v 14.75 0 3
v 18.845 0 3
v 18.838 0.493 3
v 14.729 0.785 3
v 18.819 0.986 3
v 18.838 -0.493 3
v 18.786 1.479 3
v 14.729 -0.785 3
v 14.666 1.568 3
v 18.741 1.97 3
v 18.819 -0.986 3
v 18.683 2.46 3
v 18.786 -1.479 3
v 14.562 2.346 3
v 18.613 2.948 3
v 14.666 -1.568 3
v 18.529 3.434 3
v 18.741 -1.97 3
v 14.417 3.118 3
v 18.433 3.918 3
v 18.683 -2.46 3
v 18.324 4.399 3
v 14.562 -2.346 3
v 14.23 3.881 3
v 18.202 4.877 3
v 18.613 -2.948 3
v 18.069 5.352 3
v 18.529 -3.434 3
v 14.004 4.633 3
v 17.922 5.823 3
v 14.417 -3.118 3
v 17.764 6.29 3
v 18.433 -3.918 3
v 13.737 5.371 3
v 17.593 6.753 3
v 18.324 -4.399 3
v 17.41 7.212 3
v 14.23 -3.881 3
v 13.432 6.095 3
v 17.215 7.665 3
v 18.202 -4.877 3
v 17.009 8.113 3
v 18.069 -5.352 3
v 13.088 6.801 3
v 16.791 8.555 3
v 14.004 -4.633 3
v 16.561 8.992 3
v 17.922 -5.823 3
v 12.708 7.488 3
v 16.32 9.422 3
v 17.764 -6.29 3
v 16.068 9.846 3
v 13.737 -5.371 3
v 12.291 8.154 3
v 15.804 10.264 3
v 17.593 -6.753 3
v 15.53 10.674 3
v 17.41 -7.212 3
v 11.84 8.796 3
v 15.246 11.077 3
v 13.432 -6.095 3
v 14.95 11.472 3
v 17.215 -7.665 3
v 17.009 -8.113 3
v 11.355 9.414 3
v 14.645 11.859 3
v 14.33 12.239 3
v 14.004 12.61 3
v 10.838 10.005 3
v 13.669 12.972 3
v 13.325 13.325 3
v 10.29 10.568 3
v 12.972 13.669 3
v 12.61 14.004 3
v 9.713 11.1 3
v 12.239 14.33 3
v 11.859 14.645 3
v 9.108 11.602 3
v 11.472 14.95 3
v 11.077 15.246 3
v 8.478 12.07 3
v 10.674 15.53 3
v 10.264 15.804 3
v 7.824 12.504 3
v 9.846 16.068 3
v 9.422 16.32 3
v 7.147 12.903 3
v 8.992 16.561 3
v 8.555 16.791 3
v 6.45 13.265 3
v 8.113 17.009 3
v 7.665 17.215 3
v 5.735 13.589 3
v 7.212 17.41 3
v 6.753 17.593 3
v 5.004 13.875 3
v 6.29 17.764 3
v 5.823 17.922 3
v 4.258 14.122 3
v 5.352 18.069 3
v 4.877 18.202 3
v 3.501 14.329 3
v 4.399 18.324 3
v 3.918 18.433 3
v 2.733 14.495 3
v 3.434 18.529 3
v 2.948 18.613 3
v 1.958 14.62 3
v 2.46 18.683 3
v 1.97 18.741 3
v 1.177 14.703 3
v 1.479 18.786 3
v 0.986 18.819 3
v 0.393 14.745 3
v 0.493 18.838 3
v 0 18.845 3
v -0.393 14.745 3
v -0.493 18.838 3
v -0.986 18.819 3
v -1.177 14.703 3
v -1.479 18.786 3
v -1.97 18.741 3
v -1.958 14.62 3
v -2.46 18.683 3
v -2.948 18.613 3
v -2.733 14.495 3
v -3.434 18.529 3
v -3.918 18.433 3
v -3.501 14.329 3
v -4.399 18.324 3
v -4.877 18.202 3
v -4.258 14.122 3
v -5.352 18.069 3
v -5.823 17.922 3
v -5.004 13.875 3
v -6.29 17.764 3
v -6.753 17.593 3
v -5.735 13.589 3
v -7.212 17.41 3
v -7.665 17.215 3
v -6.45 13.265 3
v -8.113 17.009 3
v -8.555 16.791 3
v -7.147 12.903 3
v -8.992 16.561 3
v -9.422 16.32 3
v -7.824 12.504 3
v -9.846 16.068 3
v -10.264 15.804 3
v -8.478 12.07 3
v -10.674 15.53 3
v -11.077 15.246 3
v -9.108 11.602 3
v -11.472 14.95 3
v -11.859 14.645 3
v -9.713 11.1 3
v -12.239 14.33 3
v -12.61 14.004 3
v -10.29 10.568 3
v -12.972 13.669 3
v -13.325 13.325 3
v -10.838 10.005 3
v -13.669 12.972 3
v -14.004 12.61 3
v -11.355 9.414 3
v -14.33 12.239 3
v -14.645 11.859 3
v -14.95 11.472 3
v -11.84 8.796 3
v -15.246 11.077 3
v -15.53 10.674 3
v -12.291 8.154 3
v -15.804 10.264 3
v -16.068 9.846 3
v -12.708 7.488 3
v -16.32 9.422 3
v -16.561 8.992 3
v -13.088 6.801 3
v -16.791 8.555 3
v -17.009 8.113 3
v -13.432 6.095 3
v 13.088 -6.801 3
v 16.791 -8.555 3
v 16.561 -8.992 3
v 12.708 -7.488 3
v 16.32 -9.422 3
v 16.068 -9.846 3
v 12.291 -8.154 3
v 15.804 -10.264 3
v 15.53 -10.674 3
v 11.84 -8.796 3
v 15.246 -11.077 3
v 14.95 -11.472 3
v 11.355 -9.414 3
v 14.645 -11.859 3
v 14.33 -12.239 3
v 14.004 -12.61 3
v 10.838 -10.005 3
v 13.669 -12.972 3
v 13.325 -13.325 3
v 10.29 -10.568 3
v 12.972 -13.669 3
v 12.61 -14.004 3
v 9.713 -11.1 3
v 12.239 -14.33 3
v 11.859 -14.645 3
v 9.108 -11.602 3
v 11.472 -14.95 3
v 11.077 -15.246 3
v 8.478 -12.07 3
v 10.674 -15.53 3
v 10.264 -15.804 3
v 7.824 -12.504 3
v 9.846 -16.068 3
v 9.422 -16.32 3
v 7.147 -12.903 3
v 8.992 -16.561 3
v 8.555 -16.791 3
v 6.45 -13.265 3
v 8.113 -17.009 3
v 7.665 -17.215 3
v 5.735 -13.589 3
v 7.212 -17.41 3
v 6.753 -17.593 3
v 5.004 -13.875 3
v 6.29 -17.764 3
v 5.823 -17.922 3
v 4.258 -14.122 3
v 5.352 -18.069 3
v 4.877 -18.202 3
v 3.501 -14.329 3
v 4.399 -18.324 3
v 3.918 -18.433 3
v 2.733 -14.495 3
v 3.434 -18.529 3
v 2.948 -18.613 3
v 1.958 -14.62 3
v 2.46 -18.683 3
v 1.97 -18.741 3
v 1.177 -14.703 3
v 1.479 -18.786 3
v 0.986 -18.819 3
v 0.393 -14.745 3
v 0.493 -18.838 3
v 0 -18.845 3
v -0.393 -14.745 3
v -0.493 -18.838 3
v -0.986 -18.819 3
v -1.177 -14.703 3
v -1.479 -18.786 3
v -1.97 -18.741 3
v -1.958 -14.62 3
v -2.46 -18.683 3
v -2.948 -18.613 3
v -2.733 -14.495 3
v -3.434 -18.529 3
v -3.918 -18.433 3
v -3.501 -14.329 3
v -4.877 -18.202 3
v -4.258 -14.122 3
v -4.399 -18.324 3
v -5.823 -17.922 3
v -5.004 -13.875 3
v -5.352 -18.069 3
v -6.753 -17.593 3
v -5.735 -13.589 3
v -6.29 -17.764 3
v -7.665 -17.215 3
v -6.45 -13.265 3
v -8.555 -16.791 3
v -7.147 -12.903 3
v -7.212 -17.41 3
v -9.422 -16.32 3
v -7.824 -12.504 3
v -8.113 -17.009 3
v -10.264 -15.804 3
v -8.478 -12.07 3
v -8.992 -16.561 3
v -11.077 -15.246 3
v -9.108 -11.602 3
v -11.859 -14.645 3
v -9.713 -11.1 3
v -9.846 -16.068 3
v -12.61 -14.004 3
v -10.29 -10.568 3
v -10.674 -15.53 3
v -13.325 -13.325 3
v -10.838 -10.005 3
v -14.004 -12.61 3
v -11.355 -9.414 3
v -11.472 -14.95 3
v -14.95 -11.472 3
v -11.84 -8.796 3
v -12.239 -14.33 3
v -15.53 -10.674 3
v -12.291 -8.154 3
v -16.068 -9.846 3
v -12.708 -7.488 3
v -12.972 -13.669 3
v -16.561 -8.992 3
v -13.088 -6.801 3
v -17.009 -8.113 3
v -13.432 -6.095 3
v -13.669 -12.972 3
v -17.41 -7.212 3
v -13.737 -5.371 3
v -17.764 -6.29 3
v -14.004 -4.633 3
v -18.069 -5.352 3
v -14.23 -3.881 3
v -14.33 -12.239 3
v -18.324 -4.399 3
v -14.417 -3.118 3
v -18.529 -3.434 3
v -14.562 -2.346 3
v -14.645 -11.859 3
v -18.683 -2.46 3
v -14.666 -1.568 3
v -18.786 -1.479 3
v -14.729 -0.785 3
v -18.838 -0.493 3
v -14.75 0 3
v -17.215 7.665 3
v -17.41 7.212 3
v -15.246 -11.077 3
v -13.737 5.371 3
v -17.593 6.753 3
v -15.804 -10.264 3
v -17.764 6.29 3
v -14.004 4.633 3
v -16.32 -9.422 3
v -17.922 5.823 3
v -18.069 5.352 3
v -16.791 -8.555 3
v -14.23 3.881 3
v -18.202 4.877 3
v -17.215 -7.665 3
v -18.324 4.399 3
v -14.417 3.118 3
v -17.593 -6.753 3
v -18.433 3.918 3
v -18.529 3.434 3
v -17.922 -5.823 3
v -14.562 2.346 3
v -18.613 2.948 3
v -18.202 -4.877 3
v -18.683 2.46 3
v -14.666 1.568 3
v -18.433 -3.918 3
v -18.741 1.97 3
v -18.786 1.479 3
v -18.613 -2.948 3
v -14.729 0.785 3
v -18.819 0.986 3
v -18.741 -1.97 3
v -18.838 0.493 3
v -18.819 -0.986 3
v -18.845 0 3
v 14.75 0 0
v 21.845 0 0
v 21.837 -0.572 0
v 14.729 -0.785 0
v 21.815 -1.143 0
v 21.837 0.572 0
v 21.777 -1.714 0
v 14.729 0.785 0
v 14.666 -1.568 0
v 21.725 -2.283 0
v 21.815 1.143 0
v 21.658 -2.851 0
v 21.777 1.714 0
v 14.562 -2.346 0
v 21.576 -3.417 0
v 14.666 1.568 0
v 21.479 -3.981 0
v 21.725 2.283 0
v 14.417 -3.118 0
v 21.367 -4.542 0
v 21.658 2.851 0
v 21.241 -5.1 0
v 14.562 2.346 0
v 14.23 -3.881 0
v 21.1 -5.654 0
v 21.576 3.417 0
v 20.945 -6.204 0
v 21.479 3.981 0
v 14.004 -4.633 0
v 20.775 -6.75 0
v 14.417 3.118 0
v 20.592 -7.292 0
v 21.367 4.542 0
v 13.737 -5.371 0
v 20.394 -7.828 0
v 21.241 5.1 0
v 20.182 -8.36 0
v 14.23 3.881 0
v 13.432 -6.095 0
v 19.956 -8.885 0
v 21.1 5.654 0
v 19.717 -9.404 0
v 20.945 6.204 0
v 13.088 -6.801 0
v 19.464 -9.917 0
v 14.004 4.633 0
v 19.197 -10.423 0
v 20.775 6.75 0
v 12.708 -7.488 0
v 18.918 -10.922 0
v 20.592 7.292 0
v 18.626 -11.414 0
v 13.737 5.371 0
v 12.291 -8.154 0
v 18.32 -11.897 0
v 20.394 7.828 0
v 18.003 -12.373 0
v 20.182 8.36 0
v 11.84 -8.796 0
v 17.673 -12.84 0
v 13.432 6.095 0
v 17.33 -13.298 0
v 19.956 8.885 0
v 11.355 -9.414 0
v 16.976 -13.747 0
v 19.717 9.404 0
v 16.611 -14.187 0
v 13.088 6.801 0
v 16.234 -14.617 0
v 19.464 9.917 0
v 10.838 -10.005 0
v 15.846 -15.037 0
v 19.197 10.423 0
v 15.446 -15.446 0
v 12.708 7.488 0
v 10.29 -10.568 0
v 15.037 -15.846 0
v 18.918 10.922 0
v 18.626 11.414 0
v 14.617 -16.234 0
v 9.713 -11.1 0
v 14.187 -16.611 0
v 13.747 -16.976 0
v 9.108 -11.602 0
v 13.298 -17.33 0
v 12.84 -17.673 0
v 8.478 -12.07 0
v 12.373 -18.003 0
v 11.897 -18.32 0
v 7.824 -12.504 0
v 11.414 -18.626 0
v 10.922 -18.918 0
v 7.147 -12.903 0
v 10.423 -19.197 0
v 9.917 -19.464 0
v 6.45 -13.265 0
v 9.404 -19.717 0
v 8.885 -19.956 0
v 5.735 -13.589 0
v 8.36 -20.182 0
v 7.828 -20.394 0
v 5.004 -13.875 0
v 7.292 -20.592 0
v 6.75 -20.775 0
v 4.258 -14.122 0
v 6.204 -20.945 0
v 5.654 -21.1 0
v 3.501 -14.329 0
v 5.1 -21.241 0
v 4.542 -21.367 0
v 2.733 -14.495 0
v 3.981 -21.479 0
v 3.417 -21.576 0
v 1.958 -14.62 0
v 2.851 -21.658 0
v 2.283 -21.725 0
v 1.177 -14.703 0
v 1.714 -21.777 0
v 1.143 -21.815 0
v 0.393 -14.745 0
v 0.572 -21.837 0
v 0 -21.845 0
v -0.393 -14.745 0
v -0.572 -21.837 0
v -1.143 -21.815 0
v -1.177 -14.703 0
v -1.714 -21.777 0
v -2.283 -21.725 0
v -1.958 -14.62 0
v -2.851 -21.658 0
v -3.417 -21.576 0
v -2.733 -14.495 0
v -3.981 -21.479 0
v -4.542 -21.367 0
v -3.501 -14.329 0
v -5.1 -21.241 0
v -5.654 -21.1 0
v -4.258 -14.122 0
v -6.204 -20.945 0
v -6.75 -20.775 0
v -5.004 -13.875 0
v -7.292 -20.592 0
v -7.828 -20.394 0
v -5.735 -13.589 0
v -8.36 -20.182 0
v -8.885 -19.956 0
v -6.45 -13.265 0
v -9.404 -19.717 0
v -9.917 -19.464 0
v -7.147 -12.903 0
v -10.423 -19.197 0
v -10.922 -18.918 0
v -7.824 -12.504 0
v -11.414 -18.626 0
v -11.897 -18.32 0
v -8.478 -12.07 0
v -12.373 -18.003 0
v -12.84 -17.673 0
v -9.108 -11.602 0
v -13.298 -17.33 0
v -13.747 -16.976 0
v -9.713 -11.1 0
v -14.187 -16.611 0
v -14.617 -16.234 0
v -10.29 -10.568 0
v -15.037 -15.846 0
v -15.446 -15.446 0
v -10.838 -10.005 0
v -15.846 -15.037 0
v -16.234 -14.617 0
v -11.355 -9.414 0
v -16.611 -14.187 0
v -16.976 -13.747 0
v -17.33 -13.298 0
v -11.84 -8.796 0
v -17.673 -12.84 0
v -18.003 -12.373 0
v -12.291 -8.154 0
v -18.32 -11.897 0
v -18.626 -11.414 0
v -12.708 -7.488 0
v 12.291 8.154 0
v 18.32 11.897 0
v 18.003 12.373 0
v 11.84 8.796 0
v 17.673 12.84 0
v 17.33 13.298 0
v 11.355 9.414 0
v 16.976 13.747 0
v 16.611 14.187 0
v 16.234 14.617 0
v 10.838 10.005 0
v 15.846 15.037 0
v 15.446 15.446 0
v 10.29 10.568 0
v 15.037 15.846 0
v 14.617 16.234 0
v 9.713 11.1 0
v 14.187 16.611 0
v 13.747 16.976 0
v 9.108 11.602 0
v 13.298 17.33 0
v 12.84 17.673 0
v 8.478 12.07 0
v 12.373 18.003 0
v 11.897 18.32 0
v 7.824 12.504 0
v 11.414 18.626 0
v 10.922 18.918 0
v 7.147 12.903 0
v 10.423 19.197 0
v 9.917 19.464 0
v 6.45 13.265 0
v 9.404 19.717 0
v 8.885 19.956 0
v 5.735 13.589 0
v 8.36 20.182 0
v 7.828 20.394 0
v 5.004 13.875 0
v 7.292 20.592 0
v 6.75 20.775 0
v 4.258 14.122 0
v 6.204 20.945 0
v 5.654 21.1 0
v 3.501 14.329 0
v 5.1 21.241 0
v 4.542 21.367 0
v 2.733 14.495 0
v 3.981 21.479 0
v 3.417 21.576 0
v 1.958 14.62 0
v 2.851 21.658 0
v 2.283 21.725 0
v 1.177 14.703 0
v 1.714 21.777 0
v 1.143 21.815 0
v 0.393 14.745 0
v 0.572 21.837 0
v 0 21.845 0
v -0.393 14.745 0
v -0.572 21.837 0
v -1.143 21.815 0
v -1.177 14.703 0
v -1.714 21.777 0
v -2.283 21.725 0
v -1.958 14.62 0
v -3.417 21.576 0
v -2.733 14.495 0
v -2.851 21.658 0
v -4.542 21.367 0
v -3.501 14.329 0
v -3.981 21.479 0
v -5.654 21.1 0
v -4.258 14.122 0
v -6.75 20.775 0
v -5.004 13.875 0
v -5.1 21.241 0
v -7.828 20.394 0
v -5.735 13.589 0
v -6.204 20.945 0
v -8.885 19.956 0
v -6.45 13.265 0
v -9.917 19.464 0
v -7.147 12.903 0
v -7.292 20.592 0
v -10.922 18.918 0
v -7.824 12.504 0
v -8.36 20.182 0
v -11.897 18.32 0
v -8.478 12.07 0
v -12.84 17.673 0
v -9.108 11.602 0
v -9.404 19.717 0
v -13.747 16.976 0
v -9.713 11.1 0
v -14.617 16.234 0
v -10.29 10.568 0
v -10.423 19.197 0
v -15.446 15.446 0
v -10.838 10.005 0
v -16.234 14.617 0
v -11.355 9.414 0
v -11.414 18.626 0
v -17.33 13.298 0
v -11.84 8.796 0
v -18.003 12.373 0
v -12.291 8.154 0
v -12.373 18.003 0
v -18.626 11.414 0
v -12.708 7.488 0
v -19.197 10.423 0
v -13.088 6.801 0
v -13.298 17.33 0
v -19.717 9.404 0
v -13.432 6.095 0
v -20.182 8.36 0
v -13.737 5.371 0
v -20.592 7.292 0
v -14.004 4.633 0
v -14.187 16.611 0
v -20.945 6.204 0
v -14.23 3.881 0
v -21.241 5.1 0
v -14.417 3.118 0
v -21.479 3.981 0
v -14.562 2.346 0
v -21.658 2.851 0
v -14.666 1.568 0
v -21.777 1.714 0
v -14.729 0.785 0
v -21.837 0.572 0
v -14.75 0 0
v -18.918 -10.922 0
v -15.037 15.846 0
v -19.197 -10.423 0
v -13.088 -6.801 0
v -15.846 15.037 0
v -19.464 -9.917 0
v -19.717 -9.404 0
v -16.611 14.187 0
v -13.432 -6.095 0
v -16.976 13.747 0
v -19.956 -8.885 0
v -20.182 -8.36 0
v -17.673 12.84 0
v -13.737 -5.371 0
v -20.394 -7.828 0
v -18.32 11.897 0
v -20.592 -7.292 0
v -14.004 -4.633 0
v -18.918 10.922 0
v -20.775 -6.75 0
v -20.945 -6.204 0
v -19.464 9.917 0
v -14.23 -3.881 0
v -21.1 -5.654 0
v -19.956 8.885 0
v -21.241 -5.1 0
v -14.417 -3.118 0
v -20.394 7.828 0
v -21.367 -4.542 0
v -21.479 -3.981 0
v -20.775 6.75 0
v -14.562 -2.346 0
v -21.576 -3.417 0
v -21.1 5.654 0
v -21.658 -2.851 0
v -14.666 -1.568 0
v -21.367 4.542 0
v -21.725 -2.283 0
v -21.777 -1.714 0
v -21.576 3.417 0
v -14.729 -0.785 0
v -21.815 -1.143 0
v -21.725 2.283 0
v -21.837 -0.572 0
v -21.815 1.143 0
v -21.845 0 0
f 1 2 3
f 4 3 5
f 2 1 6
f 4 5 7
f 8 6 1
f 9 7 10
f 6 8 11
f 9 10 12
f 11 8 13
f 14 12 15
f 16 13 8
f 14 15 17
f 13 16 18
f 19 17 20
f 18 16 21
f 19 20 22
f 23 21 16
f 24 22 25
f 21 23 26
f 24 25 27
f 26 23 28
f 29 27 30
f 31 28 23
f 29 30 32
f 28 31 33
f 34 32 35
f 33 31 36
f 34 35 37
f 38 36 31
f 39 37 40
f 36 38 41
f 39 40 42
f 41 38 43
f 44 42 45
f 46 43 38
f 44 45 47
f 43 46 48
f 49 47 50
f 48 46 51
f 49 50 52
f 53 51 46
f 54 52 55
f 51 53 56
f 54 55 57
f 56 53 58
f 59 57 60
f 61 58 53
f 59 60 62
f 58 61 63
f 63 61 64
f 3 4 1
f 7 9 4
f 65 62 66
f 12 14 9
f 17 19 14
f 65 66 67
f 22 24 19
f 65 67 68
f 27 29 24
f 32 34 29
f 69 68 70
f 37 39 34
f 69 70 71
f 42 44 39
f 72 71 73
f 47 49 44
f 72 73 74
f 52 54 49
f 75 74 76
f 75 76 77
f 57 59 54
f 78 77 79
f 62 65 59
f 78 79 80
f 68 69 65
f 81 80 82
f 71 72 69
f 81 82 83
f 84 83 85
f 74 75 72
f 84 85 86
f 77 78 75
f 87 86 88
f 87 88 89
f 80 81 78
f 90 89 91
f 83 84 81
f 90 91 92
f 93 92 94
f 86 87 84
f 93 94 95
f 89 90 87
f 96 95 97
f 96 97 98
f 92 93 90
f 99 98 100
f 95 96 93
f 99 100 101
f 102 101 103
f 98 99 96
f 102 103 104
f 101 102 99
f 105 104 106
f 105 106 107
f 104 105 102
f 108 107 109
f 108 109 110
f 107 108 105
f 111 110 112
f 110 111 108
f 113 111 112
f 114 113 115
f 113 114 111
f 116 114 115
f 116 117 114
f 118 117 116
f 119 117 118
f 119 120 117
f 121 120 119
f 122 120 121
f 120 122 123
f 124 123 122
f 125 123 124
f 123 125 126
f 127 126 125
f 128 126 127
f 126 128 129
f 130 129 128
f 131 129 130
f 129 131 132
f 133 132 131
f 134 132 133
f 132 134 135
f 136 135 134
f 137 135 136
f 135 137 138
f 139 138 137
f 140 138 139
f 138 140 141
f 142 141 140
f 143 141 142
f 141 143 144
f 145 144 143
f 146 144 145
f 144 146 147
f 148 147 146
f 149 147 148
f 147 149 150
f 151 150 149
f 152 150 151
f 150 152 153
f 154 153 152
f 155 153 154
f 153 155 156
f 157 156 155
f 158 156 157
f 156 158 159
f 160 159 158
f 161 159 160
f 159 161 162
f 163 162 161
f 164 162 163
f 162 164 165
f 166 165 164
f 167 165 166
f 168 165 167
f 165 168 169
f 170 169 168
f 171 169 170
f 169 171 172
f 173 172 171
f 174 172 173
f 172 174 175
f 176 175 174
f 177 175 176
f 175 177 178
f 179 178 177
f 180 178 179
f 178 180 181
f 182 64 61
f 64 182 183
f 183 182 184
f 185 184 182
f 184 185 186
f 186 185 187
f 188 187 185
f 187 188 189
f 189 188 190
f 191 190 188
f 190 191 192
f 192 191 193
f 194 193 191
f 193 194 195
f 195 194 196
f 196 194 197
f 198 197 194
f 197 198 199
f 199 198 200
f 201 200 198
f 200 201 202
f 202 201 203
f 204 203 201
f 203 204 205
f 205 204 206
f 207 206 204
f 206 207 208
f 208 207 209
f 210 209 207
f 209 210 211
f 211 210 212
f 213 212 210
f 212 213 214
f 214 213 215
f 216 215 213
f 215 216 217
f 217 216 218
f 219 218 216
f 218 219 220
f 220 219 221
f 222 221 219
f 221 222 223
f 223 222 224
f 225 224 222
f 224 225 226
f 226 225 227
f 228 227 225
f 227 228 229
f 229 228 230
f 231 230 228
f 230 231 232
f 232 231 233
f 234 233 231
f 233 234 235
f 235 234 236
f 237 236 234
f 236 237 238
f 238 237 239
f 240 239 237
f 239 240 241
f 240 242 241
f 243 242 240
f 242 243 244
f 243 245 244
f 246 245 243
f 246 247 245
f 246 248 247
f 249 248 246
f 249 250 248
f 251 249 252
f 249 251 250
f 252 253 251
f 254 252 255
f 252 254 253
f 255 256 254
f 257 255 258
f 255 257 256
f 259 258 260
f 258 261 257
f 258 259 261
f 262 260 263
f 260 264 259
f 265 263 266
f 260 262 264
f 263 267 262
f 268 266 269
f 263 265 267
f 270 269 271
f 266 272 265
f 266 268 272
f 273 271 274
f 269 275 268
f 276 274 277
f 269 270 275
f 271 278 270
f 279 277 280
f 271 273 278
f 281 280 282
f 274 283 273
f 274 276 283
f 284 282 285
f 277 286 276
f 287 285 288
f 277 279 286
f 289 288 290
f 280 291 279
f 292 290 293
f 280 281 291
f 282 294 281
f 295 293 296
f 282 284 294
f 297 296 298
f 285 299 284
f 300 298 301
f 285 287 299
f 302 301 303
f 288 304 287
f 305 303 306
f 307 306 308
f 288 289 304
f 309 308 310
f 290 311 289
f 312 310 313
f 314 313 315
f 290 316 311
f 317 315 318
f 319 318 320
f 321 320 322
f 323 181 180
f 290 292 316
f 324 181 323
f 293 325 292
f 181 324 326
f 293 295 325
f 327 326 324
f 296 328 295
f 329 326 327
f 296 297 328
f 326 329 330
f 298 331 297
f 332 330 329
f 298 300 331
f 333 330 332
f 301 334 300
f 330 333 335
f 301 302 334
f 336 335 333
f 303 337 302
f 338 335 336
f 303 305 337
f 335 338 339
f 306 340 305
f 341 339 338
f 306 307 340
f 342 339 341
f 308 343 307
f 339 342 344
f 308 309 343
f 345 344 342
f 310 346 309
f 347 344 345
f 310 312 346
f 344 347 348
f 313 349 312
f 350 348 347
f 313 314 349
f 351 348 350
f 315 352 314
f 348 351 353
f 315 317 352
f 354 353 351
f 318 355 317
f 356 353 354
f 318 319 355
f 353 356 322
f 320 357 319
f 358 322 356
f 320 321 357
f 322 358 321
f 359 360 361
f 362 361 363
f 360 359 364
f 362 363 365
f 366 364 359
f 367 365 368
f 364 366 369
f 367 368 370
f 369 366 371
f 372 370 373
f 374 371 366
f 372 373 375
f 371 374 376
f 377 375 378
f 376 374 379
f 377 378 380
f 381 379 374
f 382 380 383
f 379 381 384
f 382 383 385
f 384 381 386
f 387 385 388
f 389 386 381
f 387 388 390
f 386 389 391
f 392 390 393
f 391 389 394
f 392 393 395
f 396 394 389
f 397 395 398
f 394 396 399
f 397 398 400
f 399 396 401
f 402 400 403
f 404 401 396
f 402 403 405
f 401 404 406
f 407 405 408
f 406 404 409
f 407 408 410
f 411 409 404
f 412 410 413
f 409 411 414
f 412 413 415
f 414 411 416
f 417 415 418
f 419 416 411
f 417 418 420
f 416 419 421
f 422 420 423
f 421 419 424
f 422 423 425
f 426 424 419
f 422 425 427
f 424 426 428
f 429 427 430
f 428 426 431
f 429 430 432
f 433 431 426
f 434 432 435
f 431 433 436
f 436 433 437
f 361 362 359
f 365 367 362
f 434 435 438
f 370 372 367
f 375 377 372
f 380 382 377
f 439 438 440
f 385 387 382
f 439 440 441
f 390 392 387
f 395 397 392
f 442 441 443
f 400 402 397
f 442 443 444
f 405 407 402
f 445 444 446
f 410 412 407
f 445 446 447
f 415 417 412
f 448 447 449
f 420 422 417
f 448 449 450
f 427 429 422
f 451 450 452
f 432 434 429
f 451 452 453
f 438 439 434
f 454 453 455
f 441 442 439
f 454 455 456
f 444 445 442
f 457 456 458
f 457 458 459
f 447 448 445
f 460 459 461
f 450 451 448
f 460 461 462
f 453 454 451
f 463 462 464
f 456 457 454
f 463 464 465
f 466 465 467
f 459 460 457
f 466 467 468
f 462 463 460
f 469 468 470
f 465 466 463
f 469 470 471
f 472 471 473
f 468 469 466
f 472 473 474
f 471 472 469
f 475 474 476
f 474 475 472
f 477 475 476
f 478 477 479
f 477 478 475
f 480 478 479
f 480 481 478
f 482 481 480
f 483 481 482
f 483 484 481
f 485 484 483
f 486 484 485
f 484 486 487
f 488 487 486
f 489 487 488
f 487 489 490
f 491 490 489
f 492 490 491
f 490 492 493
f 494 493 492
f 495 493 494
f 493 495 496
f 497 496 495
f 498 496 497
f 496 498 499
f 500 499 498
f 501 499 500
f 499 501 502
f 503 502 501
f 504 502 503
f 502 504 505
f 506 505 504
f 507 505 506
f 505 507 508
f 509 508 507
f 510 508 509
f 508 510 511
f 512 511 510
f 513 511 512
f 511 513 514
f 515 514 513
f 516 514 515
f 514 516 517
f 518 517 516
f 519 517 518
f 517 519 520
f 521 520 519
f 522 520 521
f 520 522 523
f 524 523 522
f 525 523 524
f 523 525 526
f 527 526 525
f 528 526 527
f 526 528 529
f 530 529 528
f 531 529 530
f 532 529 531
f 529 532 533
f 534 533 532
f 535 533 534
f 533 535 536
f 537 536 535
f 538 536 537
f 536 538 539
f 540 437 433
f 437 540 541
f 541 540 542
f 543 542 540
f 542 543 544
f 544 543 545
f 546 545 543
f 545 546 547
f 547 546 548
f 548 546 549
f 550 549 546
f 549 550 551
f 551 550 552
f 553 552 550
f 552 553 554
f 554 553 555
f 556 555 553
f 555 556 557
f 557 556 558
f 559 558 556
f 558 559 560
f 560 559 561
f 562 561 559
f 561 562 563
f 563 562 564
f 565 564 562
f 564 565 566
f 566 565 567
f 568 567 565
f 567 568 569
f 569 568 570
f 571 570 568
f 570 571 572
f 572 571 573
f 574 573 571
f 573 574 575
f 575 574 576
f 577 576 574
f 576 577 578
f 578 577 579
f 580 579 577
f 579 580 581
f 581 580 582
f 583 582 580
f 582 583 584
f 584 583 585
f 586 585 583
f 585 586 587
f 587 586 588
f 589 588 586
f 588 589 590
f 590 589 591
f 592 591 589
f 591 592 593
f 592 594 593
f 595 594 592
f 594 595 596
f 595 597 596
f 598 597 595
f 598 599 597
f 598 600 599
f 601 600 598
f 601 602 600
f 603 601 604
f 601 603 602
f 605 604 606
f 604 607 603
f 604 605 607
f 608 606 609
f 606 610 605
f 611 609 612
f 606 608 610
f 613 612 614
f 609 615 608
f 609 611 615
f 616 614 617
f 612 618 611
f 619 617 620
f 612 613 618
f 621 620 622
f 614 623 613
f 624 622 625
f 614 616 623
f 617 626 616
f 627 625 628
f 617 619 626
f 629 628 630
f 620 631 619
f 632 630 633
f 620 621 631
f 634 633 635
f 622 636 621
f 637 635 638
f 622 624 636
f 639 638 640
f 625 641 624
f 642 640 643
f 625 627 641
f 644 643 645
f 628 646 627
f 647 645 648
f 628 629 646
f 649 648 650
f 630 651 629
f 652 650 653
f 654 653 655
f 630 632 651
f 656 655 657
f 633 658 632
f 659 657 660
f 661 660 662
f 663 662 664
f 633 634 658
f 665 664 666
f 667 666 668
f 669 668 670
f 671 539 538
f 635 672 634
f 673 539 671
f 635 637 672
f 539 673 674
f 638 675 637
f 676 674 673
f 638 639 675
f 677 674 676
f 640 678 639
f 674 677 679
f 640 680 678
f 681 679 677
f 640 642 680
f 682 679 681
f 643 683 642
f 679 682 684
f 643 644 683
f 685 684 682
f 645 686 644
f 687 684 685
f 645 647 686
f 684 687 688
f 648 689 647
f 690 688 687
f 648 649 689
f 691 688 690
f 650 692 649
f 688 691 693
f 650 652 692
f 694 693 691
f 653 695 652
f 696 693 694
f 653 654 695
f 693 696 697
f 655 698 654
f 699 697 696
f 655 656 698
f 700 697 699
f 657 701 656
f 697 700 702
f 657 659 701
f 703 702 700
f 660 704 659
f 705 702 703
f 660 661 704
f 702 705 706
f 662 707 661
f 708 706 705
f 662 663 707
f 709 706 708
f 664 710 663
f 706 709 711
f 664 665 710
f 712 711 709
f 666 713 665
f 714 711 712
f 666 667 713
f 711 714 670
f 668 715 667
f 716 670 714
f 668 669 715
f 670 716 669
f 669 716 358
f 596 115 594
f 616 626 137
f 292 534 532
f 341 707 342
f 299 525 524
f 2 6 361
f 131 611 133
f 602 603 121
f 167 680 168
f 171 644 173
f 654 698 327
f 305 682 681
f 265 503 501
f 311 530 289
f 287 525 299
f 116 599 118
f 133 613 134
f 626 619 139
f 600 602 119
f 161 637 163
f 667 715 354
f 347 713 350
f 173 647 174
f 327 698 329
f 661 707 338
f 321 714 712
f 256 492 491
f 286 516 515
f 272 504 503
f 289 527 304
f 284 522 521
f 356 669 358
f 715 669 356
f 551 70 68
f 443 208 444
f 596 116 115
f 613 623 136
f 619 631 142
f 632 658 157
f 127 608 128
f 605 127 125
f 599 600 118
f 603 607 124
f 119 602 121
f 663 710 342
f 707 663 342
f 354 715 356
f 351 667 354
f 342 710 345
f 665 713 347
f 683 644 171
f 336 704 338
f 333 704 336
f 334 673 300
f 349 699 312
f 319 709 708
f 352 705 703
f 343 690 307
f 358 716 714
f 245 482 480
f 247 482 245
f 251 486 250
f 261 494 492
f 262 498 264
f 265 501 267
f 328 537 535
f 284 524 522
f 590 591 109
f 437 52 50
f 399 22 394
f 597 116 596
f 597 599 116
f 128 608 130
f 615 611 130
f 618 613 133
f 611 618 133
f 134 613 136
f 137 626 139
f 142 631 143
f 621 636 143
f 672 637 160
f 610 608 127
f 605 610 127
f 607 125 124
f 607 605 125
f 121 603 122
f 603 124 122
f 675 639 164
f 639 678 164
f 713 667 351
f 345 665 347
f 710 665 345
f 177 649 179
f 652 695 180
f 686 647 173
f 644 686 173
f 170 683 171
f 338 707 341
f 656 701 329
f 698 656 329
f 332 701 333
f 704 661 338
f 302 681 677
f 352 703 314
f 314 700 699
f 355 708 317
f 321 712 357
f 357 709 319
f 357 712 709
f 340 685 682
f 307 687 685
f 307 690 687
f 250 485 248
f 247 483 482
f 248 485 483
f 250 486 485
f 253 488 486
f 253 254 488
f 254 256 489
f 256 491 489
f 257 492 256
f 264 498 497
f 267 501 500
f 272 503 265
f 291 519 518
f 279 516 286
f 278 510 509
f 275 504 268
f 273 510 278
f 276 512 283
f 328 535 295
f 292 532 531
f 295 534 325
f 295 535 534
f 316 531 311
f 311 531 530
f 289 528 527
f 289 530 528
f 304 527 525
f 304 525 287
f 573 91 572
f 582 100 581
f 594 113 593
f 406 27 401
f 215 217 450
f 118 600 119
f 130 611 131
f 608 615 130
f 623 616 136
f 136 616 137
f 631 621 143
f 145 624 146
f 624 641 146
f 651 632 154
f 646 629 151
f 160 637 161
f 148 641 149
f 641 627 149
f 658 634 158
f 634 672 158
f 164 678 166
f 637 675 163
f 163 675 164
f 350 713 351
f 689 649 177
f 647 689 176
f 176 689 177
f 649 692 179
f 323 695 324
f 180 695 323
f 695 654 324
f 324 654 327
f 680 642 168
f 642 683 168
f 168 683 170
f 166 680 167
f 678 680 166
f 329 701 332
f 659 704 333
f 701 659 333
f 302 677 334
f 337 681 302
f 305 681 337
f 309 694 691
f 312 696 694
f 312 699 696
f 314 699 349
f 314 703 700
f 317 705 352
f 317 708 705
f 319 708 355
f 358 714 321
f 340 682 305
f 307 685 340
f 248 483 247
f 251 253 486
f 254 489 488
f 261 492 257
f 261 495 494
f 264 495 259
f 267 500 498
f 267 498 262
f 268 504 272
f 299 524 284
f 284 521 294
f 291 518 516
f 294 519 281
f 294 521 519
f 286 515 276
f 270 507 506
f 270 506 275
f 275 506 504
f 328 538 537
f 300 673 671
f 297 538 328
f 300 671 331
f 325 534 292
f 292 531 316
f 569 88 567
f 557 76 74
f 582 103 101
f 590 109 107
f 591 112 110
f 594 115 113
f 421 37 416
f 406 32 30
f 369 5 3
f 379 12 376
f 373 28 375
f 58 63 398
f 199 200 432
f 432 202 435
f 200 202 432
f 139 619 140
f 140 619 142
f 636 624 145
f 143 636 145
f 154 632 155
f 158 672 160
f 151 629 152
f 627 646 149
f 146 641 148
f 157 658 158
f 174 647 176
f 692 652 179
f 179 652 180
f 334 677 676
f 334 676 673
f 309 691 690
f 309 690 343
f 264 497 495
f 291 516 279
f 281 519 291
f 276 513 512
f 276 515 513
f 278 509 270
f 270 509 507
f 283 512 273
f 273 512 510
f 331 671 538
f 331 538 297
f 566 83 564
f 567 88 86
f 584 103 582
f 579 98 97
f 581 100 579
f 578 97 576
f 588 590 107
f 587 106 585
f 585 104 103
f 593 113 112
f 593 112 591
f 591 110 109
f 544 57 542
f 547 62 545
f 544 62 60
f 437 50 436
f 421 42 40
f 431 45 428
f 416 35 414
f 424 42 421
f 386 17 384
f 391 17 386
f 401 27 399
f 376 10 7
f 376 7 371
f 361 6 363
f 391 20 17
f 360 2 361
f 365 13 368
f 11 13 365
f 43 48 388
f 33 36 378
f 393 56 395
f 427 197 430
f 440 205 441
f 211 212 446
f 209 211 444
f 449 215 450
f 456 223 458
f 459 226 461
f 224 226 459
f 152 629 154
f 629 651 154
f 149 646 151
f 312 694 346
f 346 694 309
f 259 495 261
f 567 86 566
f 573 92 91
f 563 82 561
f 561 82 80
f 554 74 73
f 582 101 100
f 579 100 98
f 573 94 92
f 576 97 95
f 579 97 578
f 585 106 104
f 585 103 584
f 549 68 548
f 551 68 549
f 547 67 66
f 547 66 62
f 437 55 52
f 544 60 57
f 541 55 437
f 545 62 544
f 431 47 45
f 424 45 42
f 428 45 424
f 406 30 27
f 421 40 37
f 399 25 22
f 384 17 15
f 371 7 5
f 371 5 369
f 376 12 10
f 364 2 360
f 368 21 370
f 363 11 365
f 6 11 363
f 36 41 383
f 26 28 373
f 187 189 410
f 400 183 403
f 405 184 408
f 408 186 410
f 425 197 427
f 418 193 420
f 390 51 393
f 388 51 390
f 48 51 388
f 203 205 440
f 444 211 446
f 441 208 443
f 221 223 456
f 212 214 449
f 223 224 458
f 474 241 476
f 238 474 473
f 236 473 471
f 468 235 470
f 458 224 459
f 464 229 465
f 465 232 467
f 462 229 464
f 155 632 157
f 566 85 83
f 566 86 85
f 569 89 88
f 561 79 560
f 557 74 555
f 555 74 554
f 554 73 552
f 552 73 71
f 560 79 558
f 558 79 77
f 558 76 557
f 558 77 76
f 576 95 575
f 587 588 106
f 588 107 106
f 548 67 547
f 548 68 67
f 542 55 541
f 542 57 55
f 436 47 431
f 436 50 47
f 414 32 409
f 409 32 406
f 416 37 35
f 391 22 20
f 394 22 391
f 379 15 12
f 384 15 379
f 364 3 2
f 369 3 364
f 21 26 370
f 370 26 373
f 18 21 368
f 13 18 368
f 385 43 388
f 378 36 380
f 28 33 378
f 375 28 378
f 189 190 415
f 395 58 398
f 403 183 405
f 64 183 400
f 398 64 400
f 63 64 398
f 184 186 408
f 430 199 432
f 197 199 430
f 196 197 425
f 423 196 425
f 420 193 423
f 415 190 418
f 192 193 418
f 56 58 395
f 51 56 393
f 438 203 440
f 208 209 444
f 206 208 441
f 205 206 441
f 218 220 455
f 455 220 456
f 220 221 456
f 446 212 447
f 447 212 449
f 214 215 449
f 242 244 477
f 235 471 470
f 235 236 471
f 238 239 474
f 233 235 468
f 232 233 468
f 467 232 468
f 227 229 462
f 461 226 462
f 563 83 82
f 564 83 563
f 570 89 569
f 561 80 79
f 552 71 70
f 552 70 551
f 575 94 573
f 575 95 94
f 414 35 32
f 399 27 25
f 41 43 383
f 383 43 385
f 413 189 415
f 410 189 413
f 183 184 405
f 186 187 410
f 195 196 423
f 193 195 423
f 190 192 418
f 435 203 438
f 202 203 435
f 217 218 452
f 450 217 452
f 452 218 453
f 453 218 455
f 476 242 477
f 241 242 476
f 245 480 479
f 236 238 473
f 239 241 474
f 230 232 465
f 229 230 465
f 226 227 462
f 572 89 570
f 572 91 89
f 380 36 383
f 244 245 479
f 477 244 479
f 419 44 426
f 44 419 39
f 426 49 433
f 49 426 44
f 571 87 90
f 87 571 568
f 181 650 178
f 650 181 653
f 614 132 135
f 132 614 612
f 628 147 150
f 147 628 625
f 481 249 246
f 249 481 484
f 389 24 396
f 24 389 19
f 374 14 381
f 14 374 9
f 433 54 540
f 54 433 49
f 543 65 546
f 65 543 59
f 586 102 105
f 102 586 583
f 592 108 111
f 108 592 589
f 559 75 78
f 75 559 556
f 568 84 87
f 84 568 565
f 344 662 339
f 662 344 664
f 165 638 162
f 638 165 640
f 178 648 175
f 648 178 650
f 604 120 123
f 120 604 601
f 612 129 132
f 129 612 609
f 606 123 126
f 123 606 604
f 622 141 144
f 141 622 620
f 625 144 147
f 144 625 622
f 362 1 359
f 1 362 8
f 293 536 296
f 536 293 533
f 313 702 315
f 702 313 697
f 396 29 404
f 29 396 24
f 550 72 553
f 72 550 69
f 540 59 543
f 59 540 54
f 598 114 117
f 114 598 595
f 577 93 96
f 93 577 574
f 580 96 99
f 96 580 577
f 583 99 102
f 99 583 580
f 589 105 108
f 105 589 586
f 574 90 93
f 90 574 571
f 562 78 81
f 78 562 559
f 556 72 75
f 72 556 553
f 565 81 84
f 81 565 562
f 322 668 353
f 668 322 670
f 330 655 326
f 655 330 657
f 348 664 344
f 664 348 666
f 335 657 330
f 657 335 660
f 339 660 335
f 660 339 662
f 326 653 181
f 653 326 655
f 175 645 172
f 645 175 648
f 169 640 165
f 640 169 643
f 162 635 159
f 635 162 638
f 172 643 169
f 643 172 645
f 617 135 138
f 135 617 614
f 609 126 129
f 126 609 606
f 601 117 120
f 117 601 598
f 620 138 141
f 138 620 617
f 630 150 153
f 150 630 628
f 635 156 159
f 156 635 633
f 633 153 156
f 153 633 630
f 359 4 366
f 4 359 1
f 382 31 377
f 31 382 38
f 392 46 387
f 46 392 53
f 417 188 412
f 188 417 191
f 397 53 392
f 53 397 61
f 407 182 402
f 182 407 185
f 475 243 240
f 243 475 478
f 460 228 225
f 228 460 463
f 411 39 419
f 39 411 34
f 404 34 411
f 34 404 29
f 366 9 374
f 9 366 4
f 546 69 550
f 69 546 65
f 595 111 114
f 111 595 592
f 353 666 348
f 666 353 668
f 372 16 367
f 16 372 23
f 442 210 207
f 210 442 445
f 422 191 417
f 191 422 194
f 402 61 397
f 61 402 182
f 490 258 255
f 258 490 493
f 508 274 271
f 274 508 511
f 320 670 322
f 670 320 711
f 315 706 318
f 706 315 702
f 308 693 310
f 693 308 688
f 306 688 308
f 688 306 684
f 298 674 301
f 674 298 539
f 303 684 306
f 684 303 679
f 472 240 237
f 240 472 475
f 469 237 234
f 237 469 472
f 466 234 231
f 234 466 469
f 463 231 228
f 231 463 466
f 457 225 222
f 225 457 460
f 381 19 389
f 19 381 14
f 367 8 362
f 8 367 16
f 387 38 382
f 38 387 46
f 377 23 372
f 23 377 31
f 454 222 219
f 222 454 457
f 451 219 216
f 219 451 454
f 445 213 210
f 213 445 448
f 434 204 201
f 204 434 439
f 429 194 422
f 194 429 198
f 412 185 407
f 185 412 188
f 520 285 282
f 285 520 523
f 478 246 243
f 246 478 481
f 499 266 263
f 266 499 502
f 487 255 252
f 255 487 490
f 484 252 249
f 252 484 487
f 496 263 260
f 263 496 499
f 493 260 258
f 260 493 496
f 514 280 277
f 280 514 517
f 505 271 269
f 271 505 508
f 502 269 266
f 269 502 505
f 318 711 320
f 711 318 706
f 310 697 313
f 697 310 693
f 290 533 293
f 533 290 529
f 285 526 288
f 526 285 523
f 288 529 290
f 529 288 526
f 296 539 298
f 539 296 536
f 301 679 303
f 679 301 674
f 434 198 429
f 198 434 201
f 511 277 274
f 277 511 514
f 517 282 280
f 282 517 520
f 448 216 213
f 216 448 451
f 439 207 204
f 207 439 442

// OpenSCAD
// Parametric Pulley with multiple belt profiles
// by droftarts January 2012

// Based on pulleys by:
// http://www.thingiverse.com/thing:11256 by me!
// https://github.com/prusajr/PrusaMendel by Josef Prusa
// http://www.thingiverse.com/thing:3104 by GilesBathgate
// http://www.thingiverse.com/thing:2079 by nophead

// dxf tooth data from http://oem.cadregister.com/asp/PPOW_Entry.asp?company=915217&elementID=07807803/METRIC/URETH/WV0025/F
// pulley diameter checked and modelled from data at http://www.sdp-si.com/D265/HTML/D265T016.html

/**
 * @name Pulley
 * @category Printed
 * @using 1 x m3 nut, normal or nyloc
 * @using 1 x m3x10 set screw or 1 x m3x8 grub screw
 */


//RN: Standard hobby pully is GT2_2mm
//RN: X retainer (lower/smaller) -- shaft 26.25 mm
//RN: Y retainer (upper/larger) -- shaft 29.5 mm

// tuneable constants


motor_shaft = 29.5;	// NEMA17 motor shaft exact diameter = 5

//teeth not used for retainer
teeth = 60;			// Number of teeth, standard Mendel T5 belt = 8, gives Outside Diameter of 11.88mm
//profile not used for retainer
profile = 12;		// 1=MXL 2=40DP 3=XL 4=H 5=T2.5 6=T5 7=T10 8=AT5 9=HTD_3mm 10=HTD_5mm 11=HTD_8mm 12=GT2_2mm 13=GT2_3mm 14=GT2_5mm







m3_dia = 0;		// 3mm hole diameter
m3_nut_hex = 0;		// 1 for hex, 0 for square nut
m3_nut_flats = 0;	// normal M3 hex nut exact width = 5.5
m3_nut_depth = 0;	// normal M3 hex nut exact depth = 2.4, nyloc = 4

retainer = 0;		// Belt retainer above teeth, 0 = No, 1 = Yes
retainer_ht = 0;	// height of retainer flange over pulley, standard = 1.5
idler = 1;			// Belt retainer below teeth, 0 = No, 1 = Yes
idler_ht = 3;		// height of idler flange over pulley, standard = 1.5

pulley_t_ht = 0;	// length of toothed part of pulley, standard = 12
pulley_b_ht = 3;		// pulley base height, standard = 8. Set to same as idler_ht if you want an idler but no pulley.
pulley_b_dia = 30;	// pulley base diameter, standard = 20
no_of_nuts = 0;		// number of captive nuts required, standard = 1
nut_angle = 90;		// angle between nuts, standard = 90
nut_shaft_distance = 0;	// distance between inner face of nut and shaft, can be negative.


//	********************************
//	** Scaling tooth for good fit **
//	********************************
/*	To improve fit of belt to pulley, set the following constant. Decrease or increase by 0.1mm at a time. We are modelling the *BELT* tooth here, not the tooth on the pulley. Increasing the number will *decrease* the pulley tooth size. Increasing the tooth width will also scale proportionately the tooth depth, to maintain the shape of the tooth, and increase how far into the pulley the tooth is indented. Can be negative */

additional_tooth_width = 0.2; //mm

//	If you need more tooth depth than this provides, adjust the following constant. However, this will cause the shape of the tooth to change.

additional_tooth_depth = 0; //mm

// calculated constants

nut_elevation = pulley_b_ht/2;
m3_nut_points = 2*((m3_nut_flats/2)/cos(30)); // This is needed for the nut trap

// The following set the pulley diameter for a given number of teeth

MXL_pulley_dia = tooth_spacing (2.032,0.254);
40DP_pulley_dia = tooth_spacing (2.07264,0.1778);
XL_pulley_dia = tooth_spacing (5.08,0.254);
H_pulley_dia = tooth_spacing (9.525,0.381);
T2_5_pulley_dia = tooth_spaceing_curvefit (0.7467,0.796,1.026);
T5_pulley_dia = tooth_spaceing_curvefit (0.6523,1.591,1.064);
T10_pulley_dia = tooth_spacing (10,0.93);
AT5_pulley_dia = tooth_spaceing_curvefit (0.6523,1.591,1.064);
HTD_3mm_pulley_dia = tooth_spacing (3,0.381);
HTD_5mm_pulley_dia = tooth_spacing (5,0.5715);
HTD_8mm_pulley_dia = tooth_spacing (8,0.6858);
GT2_2mm_pulley_dia = tooth_spacing (2,0.254);
GT2_3mm_pulley_dia = tooth_spacing (3,0.381);
GT2_5mm_pulley_dia = tooth_spacing (5,0.5715);

// The following calls the pulley creation part, and passes the pulley diameter and tooth width to that module

if ( profile == 1 ) { pulley ( "MXL" , MXL_pulley_dia , 0.508 , 1.321 ); }
if ( profile == 2 ) { pulley ( "40 D.P." , 40DP_pulley_dia , 0.457 , 1.226 ); }
if ( profile == 3 ) { pulley ( "XL" , XL_pulley_dia , 1.27, 3.051 ); }
if ( profile == 4 ) { pulley ( "H" , H_pulley_dia ,1.905 , 5.359 ); }
if ( profile == 5 ) { pulley ( "T2.5" , T2_5_pulley_dia , 0.7 , 1.678 ); }
if ( profile == 6 ) { pulley ( "T5" , T5_pulley_dia , 1.19 , 3.264 ); }
if ( profile == 7 ) { pulley ( "T10" , T10_pulley_dia , 2.5 , 6.13 ); }
if ( profile == 8 ) { pulley ( "AT5" , AT5_pulley_dia , 1.19 , 4.268 ); }
if ( profile == 9 ) { pulley ( "HTD 3mm" , HTD_3mm_pulley_dia , 1.289 , 2.27 ); }
if ( profile == 10 ) { pulley ( "HTD 5mm" , HTD_5mm_pulley_dia , 2.199 , 3.781 ); }
if ( profile == 11 ) { pulley ( "HTD 8mm" , HTD_8mm_pulley_dia , 3.607 , 6.603 ); }
if ( profile == 12 ) { pulley ( "GT2 2mm" , GT2_2mm_pulley_dia , 0.764 , 1.494 ); }
if ( profile == 13 ) { pulley ( "GT2 3mm" , GT2_3mm_pulley_dia , 1.169 , 2.31 ); }
if ( profile == 14 ) { pulley ( "GT2 5mm" , GT2_5mm_pulley_dia , 1.969 , 3.952 ); }

// Functions

function tooth_spaceing_curvefit (b,c,d)
	= ((c * pow(teeth,d)) / (b + pow(teeth,d))) * teeth ;

function tooth_spacing(tooth_pitch,pitch_line_offset)
	= (2*((teeth*tooth_pitch)/(3.14159265*2)-pitch_line_offset)) ;

// Main Module

module pulley( belt_type , pulley_OD , tooth_depth , tooth_width )
	{
	echo (str("Belt type = ",belt_type,"; Number of teeth = ",teeth,"; Pulley Outside Diameter = ",pulley_OD,"mm "));
	tooth_distance_from_centre = sqrt( pow(pulley_OD/2,2) - pow((tooth_width+additional_tooth_width)/2,2));
	tooth_width_scale = (tooth_width + additional_tooth_width ) / tooth_width;
	tooth_depth_scale = ((tooth_depth + additional_tooth_depth ) / tooth_depth) ;


//	************************************************************************
//	*** uncomment the following line if pulley is wider than puller base ***
//	************************************************************************

//	translate ([0,0, pulley_b_ht + pulley_t_ht + retainer_ht ]) rotate ([0,180,0])

	difference()
	 {	 
		union()
		{
			//base
	
			if ( pulley_b_ht < 2 ) { echo ("CAN'T DRAW PULLEY BASE, HEIGHT LESS THAN 2!!!"); } else {
				rotate_extrude($fn=pulley_b_dia*2)
				{
						square([pulley_b_dia/2-1,pulley_b_ht]);
						square([pulley_b_dia/2,pulley_b_ht-1]);
						translate([pulley_b_dia/2-1,pulley_b_ht-1]) circle(1);
				}
			}
	
		difference()
			{
			//shaft - diameter is outside diameter of pulley
			
			translate([0,0,pulley_b_ht]) 
			rotate ([0,0,360/(teeth*4)]) 
			cylinder(r=pulley_OD/2,h=pulley_t_ht, $fn=teeth*4);
	
			//teeth - cut out of shaft
		
			for(i=[1:teeth]) 
			rotate([0,0,i*(360/teeth)])
			translate([0,-tooth_distance_from_centre,pulley_b_ht -1]) 
			scale ([ tooth_width_scale , tooth_depth_scale , 1 ]) 
			{
			if ( profile == 1 ) { MXL();}
			if ( profile == 2 ) { 40DP();}
			if ( profile == 3 ) { XL();}
			if ( profile == 4 ) { H();}
			if ( profile == 5 ) { T2_5();}
			if ( profile == 6 ) { T5();}
			if ( profile == 7 ) { T10();}
			if ( profile == 8 ) { AT5();}
			if ( profile == 9 ) { HTD_3mm();}
			if ( profile == 10 ) { HTD_5mm();}
			if ( profile == 11 ) { HTD_8mm();}
			if ( profile == 12 ) { GT2_2mm();}
			if ( profile == 13 ) { GT2_3mm();}
			if ( profile == 14 ) { GT2_5mm();}
			}

			}
			
		//belt retainer / idler
		if ( retainer > 0 ) {translate ([0,0, pulley_b_ht + pulley_t_ht ]) 
		rotate_extrude($fn=teeth*4)  
		polygon([[0,0],[pulley_OD/2,0],[pulley_OD/2 + retainer_ht , retainer_ht],[0 , retainer_ht],[0,0]]);}
		
		if ( idler > 0 ) {translate ([0,0, pulley_b_ht - idler_ht ]) 
		rotate_extrude($fn=teeth*4)  
		polygon([[0,0],[pulley_OD/2 + idler_ht,0],[pulley_OD/2 , idler_ht],[0 , idler_ht],[0,0]]);}
	
		}
	   
		//hole for motor shaft
		translate([0,0,-1])cylinder(r=motor_shaft/2,h=pulley_b_ht + pulley_t_ht + retainer_ht + 2,$fn=motor_shaft*4);
				
		//captive nut and grub screw holes
	
		if ( pulley_b_ht < m3_nut_flats ) { echo ("CAN'T DRAW CAPTIVE NUTS, HEIGHT LESS THAN NUT DIAMETER!!!"); } else {
		if ( (pulley_b_dia - motor_shaft)/2 < m3_nut_depth + 3 ) { echo ("CAN'T DRAW CAPTIVE NUTS, DIAMETER TOO SMALL FOR NUT DEPTH!!!"); } else {
	
			for(j=[1:no_of_nuts]) rotate([0,0,j*nut_angle])
			translate([0,0,nut_elevation])rotate([90,0,0])
	
			union()
			{
				//entrance
				translate([0,-pulley_b_ht/4-0.5,motor_shaft/2+m3_nut_depth/2+nut_shaft_distance]) cube([m3_nut_flats,pulley_b_ht/2+1,m3_nut_depth],center=true);
	
				//nut
				if ( m3_nut_hex > 0 )
					{
						// hex nut
						translate([0,0.25,motor_shaft/2+m3_nut_depth/2+nut_shaft_distance]) rotate([0,0,30]) cylinder(r=m3_nut_points/2,h=m3_nut_depth,center=true,$fn=6);
					} else {
						// square nut
						translate([0,0.25,motor_shaft/2+m3_nut_depth/2+nut_shaft_distance]) cube([m3_nut_flats,m3_nut_flats,m3_nut_depth],center=true);
					}
	
				//grub screw hole
				rotate([0,0,22.5])cylinder(r=m3_dia/2,h=pulley_b_dia/2+1,$fn=8);
			}
		}}
	 }
	   
	}


// Tooth profile modules

module MXL()
	{
	linear_extrude(height=pulley_t_ht+2) polygon([[-0.660421,-0.5],[-0.660421,0],[-0.621898,0.006033],[-0.587714,0.023037],[-0.560056,0.049424],[-0.541182,0.083609],[-0.417357,0.424392],[-0.398413,0.458752],[-0.370649,0.48514],[-0.336324,0.502074],[-0.297744,0.508035],[0.297744,0.508035],[0.336268,0.502074],[0.370452,0.48514],[0.39811,0.458752],[0.416983,0.424392],[0.540808,0.083609],[0.559752,0.049424],[0.587516,0.023037],[0.621841,0.006033],[0.660421,0],[0.660421,-0.5]]);
	}

module 40DP()
	{
	linear_extrude(height=pulley_t_ht+2) polygon([[-0.612775,-0.5],[-0.612775,0],[-0.574719,0.010187],[-0.546453,0.0381],[-0.355953,0.3683],[-0.327604,0.405408],[-0.291086,0.433388],[-0.248548,0.451049],[-0.202142,0.4572],[0.202494,0.4572],[0.248653,0.451049],[0.291042,0.433388],[0.327609,0.405408],[0.356306,0.3683],[0.546806,0.0381],[0.574499,0.010187],[0.612775,0],[0.612775,-0.5]]);
	}

module XL()
	{
	linear_extrude(height=pulley_t_ht+2) polygon([[-1.525411,-1],[-1.525411,0],[-1.41777,0.015495],[-1.320712,0.059664],[-1.239661,0.129034],[-1.180042,0.220133],[-0.793044,1.050219],[-0.733574,1.141021],[-0.652507,1.210425],[-0.555366,1.254759],[-0.447675,1.270353],[0.447675,1.270353],[0.555366,1.254759],[0.652507,1.210425],[0.733574,1.141021],[0.793044,1.050219],[1.180042,0.220133],[1.239711,0.129034],[1.320844,0.059664],[1.417919,0.015495],[1.525411,0],[1.525411,-1]]);
	}

module H()
	{
	linear_extrude(height=pulley_t_ht+2) polygon([[-2.6797,-1],[-2.6797,0],[-2.600907,0.006138],[-2.525342,0.024024],[-2.45412,0.052881],[-2.388351,0.091909],[-2.329145,0.140328],[-2.277614,0.197358],[-2.234875,0.262205],[-2.202032,0.334091],[-1.75224,1.57093],[-1.719538,1.642815],[-1.676883,1.707663],[-1.62542,1.764693],[-1.566256,1.813112],[-1.500512,1.85214],[-1.4293,1.880997],[-1.353742,1.898883],[-1.274949,1.905021],[1.275281,1.905021],[1.354056,1.898883],[1.429576,1.880997],[1.500731,1.85214],[1.566411,1.813112],[1.625508,1.764693],[1.676919,1.707663],[1.719531,1.642815],[1.752233,1.57093],[2.20273,0.334091],[2.235433,0.262205],[2.278045,0.197358],[2.329455,0.140328],[2.388553,0.091909],[2.454233,0.052881],[2.525384,0.024024],[2.600904,0.006138],[2.6797,0],[2.6797,-1]]);
	}

module T2_5()
	{
	linear_extrude(height=pulley_t_ht+2) polygon([[-0.839258,-0.5],[-0.839258,0],[-0.770246,0.021652],[-0.726369,0.079022],[-0.529167,0.620889],[-0.485025,0.67826],[-0.416278,0.699911],[0.416278,0.699911],[0.484849,0.67826],[0.528814,0.620889],[0.726369,0.079022],[0.770114,0.021652],[0.839258,0],[0.839258,-0.5]]);
	}

module T5()
	{
	linear_extrude(height=pulley_t_ht+2) polygon([[-1.632126,-0.5],[-1.632126,0],[-1.568549,0.004939],[-1.507539,0.019367],[-1.450023,0.042686],[-1.396912,0.074224],[-1.349125,0.113379],[-1.307581,0.159508],[-1.273186,0.211991],[-1.246868,0.270192],[-1.009802,0.920362],[-0.983414,0.978433],[-0.949018,1.030788],[-0.907524,1.076798],[-0.859829,1.115847],[-0.80682,1.147314],[-0.749402,1.170562],[-0.688471,1.184956],[-0.624921,1.189895],[0.624971,1.189895],[0.688622,1.184956],[0.749607,1.170562],[0.807043,1.147314],[0.860055,1.115847],[0.907754,1.076798],[0.949269,1.030788],[0.9837,0.978433],[1.010193,0.920362],[1.246907,0.270192],[1.273295,0.211991],[1.307726,0.159508],[1.349276,0.113379],[1.397039,0.074224],[1.450111,0.042686],[1.507589,0.019367],[1.568563,0.004939],[1.632126,0],[1.632126,-0.5]]);
	}

module T10()
	{
	linear_extrude(height=pulley_t_ht+2) polygon([[-3.06511,-1],[-3.06511,0],[-2.971998,0.007239],[-2.882718,0.028344],[-2.79859,0.062396],[-2.720931,0.108479],[-2.651061,0.165675],[-2.590298,0.233065],[-2.539962,0.309732],[-2.501371,0.394759],[-1.879071,2.105025],[-1.840363,2.190052],[-1.789939,2.266719],[-1.729114,2.334109],[-1.659202,2.391304],[-1.581518,2.437387],[-1.497376,2.47144],[-1.408092,2.492545],[-1.314979,2.499784],[1.314979,2.499784],[1.408091,2.492545],[1.497371,2.47144],[1.581499,2.437387],[1.659158,2.391304],[1.729028,2.334109],[1.789791,2.266719],[1.840127,2.190052],[1.878718,2.105025],[2.501018,0.394759],[2.539726,0.309732],[2.59015,0.233065],[2.650975,0.165675],[2.720887,0.108479],[2.798571,0.062396],[2.882713,0.028344],[2.971997,0.007239],[3.06511,0],[3.06511,-1]]);
	}

module AT5()
	{
	linear_extrude(height=pulley_t_ht+2) polygon([[-2.134129,-0.75],[-2.134129,0],[-2.058023,0.005488],[-1.984595,0.021547],[-1.914806,0.047569],[-1.849614,0.082947],[-1.789978,0.127073],[-1.736857,0.179338],[-1.691211,0.239136],[-1.653999,0.305859],[-1.349199,0.959203],[-1.286933,1.054635],[-1.201914,1.127346],[-1.099961,1.173664],[-0.986896,1.18992],[0.986543,1.18992],[1.099614,1.173664],[1.201605,1.127346],[1.286729,1.054635],[1.349199,0.959203],[1.653646,0.305859],[1.690859,0.239136],[1.73651,0.179338],[1.789644,0.127073],[1.849305,0.082947],[1.914539,0.047569],[1.984392,0.021547],[2.057906,0.005488],[2.134129,0],[2.134129,-0.75]]);
	}

module HTD_3mm()
	{
	linear_extrude(height=pulley_t_ht+2) polygon([[-1.135062,-0.5],[-1.135062,0],[-1.048323,0.015484],[-0.974284,0.058517],[-0.919162,0.123974],[-0.889176,0.206728],[-0.81721,0.579614],[-0.800806,0.653232],[-0.778384,0.72416],[-0.750244,0.792137],[-0.716685,0.856903],[-0.678005,0.918199],[-0.634505,0.975764],[-0.586483,1.029338],[-0.534238,1.078662],[-0.47807,1.123476],[-0.418278,1.16352],[-0.355162,1.198533],[-0.289019,1.228257],[-0.22015,1.25243],[-0.148854,1.270793],[-0.07543,1.283087],[-0.000176,1.28905],[0.075081,1.283145],[0.148515,1.270895],[0.219827,1.252561],[0.288716,1.228406],[0.354879,1.19869],[0.418018,1.163675],[0.477831,1.123623],[0.534017,1.078795],[0.586276,1.029452],[0.634307,0.975857],[0.677809,0.91827],[0.716481,0.856953],[0.750022,0.792167],[0.778133,0.724174],[0.800511,0.653236],[0.816857,0.579614],[0.888471,0.206728],[0.919014,0.123974],[0.974328,0.058517],[1.048362,0.015484],[1.135062,0],[1.135062,-0.5]]);
	}

module HTD_5mm()
	{
	linear_extrude(height=pulley_t_ht+2) polygon([[-1.89036,-0.75],[-1.89036,0],[-1.741168,0.02669],[-1.61387,0.100806],[-1.518984,0.21342],[-1.467026,0.3556],[-1.427162,0.960967],[-1.398568,1.089602],[-1.359437,1.213531],[-1.310296,1.332296],[-1.251672,1.445441],[-1.184092,1.552509],[-1.108081,1.653042],[-1.024167,1.746585],[-0.932877,1.832681],[-0.834736,1.910872],[-0.730271,1.980701],[-0.62001,2.041713],[-0.504478,2.09345],[-0.384202,2.135455],[-0.259708,2.167271],[-0.131524,2.188443],[-0.000176,2.198511],[0.131296,2.188504],[0.259588,2.167387],[0.384174,2.135616],[0.504527,2.093648],[0.620123,2.04194],[0.730433,1.980949],[0.834934,1.911132],[0.933097,1.832945],[1.024398,1.746846],[1.108311,1.653291],[1.184308,1.552736],[1.251865,1.445639],[1.310455,1.332457],[1.359552,1.213647],[1.39863,1.089664],[1.427162,0.960967],[1.467026,0.3556],[1.518984,0.21342],[1.61387,0.100806],[1.741168,0.02669],[1.89036,0],[1.89036,-0.75]]);
	}

module HTD_8mm()
	{
	linear_extrude(height=pulley_t_ht+2) polygon([[-3.301471,-1],[-3.301471,0],[-3.16611,0.012093],[-3.038062,0.047068],[-2.919646,0.10297],[-2.813182,0.177844],[-2.720989,0.269734],[-2.645387,0.376684],[-2.588694,0.496739],[-2.553229,0.627944],[-2.460801,1.470025],[-2.411413,1.691917],[-2.343887,1.905691],[-2.259126,2.110563],[-2.158035,2.30575],[-2.041518,2.490467],[-1.910478,2.66393],[-1.76582,2.825356],[-1.608446,2.973961],[-1.439261,3.10896],[-1.259169,3.22957],[-1.069074,3.335006],[-0.869878,3.424485],[-0.662487,3.497224],[-0.447804,3.552437],[-0.226732,3.589341],[-0.000176,3.607153],[0.226511,3.589461],[0.447712,3.552654],[0.66252,3.497516],[0.870027,3.424833],[1.069329,3.33539],[1.259517,3.229973],[1.439687,3.109367],[1.608931,2.974358],[1.766344,2.825731],[1.911018,2.664271],[2.042047,2.490765],[2.158526,2.305998],[2.259547,2.110755],[2.344204,1.905821],[2.411591,1.691983],[2.460801,1.470025],[2.553229,0.627944],[2.588592,0.496739],[2.645238,0.376684],[2.720834,0.269734],[2.81305,0.177844],[2.919553,0.10297],[3.038012,0.047068],[3.166095,0.012093],[3.301471,0],[3.301471,-1]]);
	}

module GT2_2mm()
	{
	linear_extrude(height=pulley_t_ht+2) polygon([[0.747183,-0.5],[0.747183,0],[0.647876,0.037218],[0.598311,0.130528],[0.578556,0.238423],[0.547158,0.343077],[0.504649,0.443762],[0.451556,0.53975],[0.358229,0.636924],[0.2484,0.707276],[0.127259,0.750044],[0,0.76447],[-0.127259,0.750044],[-0.2484,0.707276],[-0.358229,0.636924],[-0.451556,0.53975],[-0.504797,0.443762],[-0.547291,0.343077],[-0.578605,0.238423],[-0.598311,0.130528],[-0.648009,0.037218],[-0.747183,0],[-0.747183,-0.5]]);
	}

module GT2_3mm()
	{
	linear_extrude(height=pulley_t_ht+2) polygon([[-1.155171,-0.5],[-1.155171,0],[-1.065317,0.016448],[-0.989057,0.062001],[-0.93297,0.130969],[-0.90364,0.217664],[-0.863705,0.408181],[-0.800056,0.591388],[-0.713587,0.765004],[-0.60519,0.926747],[-0.469751,1.032548],[-0.320719,1.108119],[-0.162625,1.153462],[0,1.168577],[0.162625,1.153462],[0.320719,1.108119],[0.469751,1.032548],[0.60519,0.926747],[0.713587,0.765004],[0.800056,0.591388],[0.863705,0.408181],[0.90364,0.217664],[0.932921,0.130969],[0.988924,0.062001],[1.065168,0.016448],[1.155171,0],[1.155171,-0.5]]);
	}

module GT2_5mm()
	{
	linear_extrude(height=pulley_t_ht+2) polygon([[-1.975908,-0.75],[-1.975908,0],[-1.797959,0.03212],[-1.646634,0.121224],[-1.534534,0.256431],[-1.474258,0.426861],[-1.446911,0.570808],[-1.411774,0.712722],[-1.368964,0.852287],[-1.318597,0.989189],[-1.260788,1.123115],[-1.195654,1.25375],[-1.12331,1.380781],[-1.043869,1.503892],[-0.935264,1.612278],[-0.817959,1.706414],[-0.693181,1.786237],[-0.562151,1.851687],[-0.426095,1.9027],[-0.286235,1.939214],[-0.143795,1.961168],[0,1.9685],[0.143796,1.961168],[0.286235,1.939214],[0.426095,1.9027],[0.562151,1.851687],[0.693181,1.786237],[0.817959,1.706414],[0.935263,1.612278],[1.043869,1.503892],[1.123207,1.380781],[1.195509,1.25375],[1.26065,1.123115],[1.318507,0.989189],[1.368956,0.852287],[1.411872,0.712722],[1.447132,0.570808],[1.474611,0.426861],[1.534583,0.256431],[1.646678,0.121223],[1.798064,0.03212],[1.975908,0],[1.975908,-0.75]]);
	}
